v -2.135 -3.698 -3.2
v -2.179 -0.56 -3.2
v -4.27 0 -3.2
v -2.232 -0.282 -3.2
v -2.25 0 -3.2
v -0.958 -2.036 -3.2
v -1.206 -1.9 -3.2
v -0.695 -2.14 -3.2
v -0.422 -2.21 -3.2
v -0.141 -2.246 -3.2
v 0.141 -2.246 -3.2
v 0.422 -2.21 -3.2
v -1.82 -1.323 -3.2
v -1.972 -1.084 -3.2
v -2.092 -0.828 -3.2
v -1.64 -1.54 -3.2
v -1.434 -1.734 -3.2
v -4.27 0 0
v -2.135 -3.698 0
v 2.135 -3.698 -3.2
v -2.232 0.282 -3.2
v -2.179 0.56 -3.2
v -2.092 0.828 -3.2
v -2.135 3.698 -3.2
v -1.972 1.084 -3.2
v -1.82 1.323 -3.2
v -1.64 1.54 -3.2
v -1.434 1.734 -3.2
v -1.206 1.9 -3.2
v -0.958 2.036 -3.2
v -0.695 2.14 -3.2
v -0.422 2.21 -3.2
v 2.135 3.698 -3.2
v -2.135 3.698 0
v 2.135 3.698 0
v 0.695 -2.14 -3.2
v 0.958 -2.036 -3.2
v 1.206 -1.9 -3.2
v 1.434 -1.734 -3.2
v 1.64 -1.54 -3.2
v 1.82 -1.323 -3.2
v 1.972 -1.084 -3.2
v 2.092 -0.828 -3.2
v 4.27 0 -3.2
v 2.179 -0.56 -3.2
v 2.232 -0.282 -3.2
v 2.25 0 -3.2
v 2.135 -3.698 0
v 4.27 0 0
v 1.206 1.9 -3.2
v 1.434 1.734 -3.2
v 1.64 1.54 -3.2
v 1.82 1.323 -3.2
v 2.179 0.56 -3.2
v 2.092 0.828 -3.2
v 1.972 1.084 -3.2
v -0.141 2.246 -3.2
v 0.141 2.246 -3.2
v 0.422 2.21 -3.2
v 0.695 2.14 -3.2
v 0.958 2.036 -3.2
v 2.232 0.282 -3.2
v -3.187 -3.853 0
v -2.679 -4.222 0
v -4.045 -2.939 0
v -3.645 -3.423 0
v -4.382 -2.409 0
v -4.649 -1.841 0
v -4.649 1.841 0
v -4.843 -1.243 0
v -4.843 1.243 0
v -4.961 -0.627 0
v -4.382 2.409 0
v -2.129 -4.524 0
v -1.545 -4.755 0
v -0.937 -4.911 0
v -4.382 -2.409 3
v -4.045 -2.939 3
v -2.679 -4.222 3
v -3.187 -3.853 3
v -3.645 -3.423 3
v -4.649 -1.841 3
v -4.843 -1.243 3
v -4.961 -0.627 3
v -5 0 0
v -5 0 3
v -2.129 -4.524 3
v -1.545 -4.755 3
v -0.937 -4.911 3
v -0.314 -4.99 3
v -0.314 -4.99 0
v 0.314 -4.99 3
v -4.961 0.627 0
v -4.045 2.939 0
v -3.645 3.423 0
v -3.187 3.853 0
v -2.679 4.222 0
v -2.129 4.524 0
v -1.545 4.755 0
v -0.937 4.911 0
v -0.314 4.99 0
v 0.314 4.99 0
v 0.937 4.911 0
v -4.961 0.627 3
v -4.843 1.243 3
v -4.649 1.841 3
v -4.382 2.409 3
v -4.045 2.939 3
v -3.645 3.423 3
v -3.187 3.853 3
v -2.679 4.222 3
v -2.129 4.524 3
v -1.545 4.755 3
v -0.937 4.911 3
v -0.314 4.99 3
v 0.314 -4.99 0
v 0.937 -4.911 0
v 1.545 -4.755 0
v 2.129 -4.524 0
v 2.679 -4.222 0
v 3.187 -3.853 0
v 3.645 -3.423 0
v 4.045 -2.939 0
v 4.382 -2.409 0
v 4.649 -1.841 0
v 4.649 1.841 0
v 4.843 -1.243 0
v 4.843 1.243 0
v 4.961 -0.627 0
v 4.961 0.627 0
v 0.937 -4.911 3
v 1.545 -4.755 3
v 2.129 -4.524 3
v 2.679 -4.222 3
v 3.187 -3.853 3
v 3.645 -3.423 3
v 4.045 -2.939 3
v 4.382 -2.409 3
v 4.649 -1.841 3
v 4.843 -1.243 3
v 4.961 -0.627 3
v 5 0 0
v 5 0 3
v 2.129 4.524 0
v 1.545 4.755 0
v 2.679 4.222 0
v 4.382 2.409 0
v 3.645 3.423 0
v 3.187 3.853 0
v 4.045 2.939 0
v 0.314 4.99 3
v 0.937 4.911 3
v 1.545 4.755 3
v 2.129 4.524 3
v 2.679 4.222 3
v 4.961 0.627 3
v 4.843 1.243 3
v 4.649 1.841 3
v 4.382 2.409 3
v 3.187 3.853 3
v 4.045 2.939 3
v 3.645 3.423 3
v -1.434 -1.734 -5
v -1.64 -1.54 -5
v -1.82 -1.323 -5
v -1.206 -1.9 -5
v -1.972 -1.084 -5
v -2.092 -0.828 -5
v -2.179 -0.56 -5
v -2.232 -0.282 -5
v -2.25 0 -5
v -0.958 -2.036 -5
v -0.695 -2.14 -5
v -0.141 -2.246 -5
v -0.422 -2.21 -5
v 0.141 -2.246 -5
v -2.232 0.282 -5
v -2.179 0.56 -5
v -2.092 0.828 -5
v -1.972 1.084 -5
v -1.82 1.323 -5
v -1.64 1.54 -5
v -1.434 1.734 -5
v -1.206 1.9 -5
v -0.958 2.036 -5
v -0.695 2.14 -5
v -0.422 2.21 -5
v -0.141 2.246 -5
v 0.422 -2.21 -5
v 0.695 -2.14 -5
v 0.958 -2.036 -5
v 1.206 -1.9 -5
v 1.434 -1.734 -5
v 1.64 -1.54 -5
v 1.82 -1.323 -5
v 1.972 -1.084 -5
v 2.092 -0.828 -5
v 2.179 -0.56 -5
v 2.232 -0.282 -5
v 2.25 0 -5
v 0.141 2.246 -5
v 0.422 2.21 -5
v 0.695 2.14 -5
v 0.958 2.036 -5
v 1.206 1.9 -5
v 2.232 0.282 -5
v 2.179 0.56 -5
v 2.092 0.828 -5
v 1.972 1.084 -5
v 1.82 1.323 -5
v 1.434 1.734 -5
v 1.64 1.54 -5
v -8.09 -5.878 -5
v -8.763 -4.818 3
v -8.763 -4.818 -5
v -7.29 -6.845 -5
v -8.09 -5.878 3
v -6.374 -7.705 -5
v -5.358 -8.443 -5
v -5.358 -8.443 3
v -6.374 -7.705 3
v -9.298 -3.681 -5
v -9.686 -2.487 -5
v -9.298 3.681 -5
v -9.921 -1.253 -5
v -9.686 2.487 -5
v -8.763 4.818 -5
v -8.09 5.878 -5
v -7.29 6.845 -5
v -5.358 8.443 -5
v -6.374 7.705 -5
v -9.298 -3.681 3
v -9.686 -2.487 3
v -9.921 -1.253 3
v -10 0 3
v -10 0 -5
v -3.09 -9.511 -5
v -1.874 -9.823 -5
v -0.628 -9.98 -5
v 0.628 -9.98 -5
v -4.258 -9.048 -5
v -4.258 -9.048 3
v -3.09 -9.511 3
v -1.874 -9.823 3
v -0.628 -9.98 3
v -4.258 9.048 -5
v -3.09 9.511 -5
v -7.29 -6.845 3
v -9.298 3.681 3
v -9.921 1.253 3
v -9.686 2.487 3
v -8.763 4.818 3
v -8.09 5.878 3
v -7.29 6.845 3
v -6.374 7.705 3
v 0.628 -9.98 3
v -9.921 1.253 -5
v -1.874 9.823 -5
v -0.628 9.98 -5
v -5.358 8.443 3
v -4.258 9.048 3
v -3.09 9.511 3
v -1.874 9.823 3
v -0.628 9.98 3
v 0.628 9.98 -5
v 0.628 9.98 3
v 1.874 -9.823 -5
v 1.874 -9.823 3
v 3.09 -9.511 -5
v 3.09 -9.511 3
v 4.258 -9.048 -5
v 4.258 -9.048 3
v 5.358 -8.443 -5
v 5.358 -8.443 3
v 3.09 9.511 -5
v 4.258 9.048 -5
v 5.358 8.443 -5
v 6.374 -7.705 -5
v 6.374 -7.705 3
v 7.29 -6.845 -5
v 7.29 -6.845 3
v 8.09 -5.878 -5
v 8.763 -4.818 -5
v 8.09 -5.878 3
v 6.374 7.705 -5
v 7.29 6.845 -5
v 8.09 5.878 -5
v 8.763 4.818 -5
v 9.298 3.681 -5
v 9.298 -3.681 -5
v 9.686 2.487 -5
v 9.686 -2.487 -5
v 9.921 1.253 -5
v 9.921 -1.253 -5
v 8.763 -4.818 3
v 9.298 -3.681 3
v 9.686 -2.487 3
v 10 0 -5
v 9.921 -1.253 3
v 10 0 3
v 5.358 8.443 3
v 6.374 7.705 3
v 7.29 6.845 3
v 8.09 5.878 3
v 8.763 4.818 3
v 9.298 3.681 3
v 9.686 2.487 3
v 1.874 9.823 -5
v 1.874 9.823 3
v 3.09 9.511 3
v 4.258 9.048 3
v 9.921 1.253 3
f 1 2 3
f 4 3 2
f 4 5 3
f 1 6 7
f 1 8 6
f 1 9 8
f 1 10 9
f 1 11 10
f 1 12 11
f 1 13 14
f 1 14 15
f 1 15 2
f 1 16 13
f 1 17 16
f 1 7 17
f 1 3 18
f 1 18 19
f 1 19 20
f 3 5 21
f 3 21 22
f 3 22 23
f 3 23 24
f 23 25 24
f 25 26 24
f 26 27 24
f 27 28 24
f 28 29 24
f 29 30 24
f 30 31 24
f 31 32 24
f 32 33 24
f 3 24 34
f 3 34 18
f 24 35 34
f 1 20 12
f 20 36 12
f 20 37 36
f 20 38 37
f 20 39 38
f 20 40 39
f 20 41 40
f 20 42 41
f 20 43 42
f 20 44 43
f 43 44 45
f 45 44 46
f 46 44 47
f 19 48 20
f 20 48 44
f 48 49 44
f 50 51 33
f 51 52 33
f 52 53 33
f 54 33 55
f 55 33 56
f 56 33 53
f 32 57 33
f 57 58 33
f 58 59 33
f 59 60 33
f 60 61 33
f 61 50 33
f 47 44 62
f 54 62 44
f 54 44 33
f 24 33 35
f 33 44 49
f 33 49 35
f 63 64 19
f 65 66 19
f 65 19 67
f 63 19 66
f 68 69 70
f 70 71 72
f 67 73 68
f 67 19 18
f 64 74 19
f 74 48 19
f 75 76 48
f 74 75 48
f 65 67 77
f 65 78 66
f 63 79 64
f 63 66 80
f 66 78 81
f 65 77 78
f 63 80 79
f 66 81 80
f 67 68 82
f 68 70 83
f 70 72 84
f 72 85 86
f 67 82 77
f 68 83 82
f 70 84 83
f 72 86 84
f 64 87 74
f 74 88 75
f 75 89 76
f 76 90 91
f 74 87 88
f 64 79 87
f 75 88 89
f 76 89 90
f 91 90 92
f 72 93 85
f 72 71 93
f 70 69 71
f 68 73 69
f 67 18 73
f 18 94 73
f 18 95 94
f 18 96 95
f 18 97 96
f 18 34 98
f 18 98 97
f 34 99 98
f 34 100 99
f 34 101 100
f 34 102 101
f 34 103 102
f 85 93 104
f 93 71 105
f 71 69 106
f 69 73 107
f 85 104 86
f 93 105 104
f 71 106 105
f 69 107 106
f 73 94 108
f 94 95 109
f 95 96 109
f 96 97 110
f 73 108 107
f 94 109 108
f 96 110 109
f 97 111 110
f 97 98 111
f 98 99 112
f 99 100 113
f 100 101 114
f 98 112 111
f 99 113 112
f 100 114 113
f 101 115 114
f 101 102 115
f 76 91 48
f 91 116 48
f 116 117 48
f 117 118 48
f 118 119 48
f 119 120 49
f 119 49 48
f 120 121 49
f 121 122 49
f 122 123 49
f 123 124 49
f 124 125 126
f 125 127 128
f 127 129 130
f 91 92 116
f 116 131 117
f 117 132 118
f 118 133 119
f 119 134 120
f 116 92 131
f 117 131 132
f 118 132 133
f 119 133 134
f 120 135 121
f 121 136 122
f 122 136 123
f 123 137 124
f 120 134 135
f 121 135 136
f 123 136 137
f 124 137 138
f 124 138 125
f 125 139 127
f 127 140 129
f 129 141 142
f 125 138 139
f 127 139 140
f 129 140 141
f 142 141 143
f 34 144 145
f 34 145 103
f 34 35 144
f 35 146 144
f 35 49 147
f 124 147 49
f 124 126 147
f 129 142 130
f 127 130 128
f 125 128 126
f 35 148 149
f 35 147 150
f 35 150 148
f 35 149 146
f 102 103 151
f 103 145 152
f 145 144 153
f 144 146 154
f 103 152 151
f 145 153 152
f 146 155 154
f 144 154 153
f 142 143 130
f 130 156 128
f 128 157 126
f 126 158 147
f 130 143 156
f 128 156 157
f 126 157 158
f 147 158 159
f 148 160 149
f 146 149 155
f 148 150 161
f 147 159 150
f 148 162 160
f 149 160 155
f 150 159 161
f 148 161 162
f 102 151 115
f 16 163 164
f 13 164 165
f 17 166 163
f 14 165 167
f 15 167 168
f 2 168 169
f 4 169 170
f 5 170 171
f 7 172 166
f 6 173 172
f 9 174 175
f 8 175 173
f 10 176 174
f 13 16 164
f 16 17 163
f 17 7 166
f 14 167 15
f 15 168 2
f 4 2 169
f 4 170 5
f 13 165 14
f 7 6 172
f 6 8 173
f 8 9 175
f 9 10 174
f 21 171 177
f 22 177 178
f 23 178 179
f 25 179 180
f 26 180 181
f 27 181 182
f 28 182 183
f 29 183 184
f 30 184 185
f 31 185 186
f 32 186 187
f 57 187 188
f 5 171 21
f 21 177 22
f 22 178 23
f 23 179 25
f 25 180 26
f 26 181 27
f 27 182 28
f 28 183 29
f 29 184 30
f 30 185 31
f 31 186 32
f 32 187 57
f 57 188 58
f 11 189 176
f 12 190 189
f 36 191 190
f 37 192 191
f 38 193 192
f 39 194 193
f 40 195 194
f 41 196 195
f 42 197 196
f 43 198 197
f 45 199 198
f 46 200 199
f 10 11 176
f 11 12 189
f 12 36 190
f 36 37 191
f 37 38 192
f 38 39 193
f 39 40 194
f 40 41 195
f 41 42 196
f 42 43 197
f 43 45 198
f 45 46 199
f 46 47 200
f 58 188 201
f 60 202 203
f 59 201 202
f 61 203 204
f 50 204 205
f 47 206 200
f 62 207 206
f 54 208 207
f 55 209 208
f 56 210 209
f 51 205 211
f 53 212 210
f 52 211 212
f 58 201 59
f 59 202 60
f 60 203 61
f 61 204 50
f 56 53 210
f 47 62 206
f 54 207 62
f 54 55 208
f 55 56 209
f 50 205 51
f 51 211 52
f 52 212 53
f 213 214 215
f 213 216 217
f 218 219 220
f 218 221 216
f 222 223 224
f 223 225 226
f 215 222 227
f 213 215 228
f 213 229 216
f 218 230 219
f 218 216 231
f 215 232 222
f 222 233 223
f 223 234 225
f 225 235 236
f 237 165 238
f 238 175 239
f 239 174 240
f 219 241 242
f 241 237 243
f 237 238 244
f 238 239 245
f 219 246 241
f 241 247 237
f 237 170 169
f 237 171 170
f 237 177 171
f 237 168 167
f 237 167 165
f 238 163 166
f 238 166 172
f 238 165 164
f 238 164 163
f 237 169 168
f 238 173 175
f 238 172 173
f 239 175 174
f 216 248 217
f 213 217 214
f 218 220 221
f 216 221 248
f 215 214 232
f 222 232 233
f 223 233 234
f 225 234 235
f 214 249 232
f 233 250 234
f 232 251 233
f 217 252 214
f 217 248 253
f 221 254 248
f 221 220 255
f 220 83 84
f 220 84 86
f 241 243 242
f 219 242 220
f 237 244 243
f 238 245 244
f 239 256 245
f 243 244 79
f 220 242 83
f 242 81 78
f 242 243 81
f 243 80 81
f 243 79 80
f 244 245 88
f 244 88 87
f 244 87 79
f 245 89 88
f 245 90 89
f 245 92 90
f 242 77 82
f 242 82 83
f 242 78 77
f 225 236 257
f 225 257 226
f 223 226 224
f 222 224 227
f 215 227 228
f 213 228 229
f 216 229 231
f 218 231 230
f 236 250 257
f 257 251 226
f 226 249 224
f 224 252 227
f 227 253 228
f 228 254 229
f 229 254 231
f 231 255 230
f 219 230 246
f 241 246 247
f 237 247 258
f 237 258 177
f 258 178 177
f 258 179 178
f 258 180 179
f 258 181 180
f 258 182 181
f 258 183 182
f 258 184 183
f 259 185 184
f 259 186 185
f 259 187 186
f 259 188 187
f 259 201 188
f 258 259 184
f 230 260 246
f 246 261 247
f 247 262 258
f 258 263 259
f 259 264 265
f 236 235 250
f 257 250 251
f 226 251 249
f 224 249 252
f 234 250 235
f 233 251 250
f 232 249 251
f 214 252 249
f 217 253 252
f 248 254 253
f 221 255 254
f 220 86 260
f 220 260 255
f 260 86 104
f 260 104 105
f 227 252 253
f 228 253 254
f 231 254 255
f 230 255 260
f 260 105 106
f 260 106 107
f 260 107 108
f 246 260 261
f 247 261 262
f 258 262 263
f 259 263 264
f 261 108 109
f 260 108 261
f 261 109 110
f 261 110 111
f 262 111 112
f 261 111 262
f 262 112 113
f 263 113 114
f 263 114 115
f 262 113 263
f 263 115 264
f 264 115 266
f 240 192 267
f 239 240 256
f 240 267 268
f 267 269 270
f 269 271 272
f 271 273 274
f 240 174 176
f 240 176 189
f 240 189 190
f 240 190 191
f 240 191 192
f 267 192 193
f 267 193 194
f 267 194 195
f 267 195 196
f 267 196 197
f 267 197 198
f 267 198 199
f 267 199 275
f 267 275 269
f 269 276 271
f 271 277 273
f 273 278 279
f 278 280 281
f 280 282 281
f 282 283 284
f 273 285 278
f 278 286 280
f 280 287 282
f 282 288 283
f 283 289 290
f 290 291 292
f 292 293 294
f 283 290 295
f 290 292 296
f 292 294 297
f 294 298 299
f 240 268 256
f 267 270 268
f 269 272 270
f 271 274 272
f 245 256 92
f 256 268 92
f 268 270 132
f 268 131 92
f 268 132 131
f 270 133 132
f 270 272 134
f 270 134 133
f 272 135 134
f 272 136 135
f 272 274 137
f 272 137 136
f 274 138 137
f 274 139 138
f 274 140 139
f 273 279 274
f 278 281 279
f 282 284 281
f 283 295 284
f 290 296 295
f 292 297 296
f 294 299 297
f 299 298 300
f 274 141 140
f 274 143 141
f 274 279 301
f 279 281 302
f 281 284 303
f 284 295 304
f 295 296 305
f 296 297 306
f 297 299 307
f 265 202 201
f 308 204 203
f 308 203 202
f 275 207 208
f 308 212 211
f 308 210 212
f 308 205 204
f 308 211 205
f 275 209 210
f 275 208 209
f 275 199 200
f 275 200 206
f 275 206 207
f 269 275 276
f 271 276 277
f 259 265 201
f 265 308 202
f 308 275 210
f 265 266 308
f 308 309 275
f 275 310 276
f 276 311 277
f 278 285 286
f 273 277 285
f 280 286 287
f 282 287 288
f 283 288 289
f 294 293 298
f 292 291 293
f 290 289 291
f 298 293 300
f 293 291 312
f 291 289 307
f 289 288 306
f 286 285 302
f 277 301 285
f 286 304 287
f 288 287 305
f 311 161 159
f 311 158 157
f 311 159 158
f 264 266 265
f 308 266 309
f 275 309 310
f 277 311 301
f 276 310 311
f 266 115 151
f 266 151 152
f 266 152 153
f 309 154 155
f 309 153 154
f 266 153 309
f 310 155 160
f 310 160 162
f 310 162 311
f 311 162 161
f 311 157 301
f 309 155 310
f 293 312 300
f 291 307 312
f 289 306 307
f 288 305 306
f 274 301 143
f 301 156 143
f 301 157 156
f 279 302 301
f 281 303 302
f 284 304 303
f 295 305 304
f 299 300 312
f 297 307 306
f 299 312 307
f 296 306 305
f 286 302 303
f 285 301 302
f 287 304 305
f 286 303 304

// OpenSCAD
$fn = 50;

difference() {
	union() {
		translate(v = [0, 0, -5.0]) {
			cylinder(h = 8.0, r = 10.0);
		}
	}
	union() {
		translate(v = [0, 0, 0]) {
			rotate(a = [0, 0, 0]) {
				difference() {
					union() {
						translate(v = [0, 0, -3.2]) {
							linear_extrude(height = 3.2) {
								polygon(points = [[4.2698, 0.0], [2.1349000000000005, 3.697755269078796], [-2.134899999999999, 3.6977552690787965], [-4.2698, 5.228996902999369e-16], [-2.134900000000002, -3.6977552690787956], [2.1348999999999974, -3.697755269078798]]);
							}
						}
					}
					union();
				}
			}
		}
		#cylinder(h = 3, r = 5.0);
		#translate(v = [0, 0, -100.0]) {
			cylinder(h = 200, r = 2.25);
		}
	}
}
